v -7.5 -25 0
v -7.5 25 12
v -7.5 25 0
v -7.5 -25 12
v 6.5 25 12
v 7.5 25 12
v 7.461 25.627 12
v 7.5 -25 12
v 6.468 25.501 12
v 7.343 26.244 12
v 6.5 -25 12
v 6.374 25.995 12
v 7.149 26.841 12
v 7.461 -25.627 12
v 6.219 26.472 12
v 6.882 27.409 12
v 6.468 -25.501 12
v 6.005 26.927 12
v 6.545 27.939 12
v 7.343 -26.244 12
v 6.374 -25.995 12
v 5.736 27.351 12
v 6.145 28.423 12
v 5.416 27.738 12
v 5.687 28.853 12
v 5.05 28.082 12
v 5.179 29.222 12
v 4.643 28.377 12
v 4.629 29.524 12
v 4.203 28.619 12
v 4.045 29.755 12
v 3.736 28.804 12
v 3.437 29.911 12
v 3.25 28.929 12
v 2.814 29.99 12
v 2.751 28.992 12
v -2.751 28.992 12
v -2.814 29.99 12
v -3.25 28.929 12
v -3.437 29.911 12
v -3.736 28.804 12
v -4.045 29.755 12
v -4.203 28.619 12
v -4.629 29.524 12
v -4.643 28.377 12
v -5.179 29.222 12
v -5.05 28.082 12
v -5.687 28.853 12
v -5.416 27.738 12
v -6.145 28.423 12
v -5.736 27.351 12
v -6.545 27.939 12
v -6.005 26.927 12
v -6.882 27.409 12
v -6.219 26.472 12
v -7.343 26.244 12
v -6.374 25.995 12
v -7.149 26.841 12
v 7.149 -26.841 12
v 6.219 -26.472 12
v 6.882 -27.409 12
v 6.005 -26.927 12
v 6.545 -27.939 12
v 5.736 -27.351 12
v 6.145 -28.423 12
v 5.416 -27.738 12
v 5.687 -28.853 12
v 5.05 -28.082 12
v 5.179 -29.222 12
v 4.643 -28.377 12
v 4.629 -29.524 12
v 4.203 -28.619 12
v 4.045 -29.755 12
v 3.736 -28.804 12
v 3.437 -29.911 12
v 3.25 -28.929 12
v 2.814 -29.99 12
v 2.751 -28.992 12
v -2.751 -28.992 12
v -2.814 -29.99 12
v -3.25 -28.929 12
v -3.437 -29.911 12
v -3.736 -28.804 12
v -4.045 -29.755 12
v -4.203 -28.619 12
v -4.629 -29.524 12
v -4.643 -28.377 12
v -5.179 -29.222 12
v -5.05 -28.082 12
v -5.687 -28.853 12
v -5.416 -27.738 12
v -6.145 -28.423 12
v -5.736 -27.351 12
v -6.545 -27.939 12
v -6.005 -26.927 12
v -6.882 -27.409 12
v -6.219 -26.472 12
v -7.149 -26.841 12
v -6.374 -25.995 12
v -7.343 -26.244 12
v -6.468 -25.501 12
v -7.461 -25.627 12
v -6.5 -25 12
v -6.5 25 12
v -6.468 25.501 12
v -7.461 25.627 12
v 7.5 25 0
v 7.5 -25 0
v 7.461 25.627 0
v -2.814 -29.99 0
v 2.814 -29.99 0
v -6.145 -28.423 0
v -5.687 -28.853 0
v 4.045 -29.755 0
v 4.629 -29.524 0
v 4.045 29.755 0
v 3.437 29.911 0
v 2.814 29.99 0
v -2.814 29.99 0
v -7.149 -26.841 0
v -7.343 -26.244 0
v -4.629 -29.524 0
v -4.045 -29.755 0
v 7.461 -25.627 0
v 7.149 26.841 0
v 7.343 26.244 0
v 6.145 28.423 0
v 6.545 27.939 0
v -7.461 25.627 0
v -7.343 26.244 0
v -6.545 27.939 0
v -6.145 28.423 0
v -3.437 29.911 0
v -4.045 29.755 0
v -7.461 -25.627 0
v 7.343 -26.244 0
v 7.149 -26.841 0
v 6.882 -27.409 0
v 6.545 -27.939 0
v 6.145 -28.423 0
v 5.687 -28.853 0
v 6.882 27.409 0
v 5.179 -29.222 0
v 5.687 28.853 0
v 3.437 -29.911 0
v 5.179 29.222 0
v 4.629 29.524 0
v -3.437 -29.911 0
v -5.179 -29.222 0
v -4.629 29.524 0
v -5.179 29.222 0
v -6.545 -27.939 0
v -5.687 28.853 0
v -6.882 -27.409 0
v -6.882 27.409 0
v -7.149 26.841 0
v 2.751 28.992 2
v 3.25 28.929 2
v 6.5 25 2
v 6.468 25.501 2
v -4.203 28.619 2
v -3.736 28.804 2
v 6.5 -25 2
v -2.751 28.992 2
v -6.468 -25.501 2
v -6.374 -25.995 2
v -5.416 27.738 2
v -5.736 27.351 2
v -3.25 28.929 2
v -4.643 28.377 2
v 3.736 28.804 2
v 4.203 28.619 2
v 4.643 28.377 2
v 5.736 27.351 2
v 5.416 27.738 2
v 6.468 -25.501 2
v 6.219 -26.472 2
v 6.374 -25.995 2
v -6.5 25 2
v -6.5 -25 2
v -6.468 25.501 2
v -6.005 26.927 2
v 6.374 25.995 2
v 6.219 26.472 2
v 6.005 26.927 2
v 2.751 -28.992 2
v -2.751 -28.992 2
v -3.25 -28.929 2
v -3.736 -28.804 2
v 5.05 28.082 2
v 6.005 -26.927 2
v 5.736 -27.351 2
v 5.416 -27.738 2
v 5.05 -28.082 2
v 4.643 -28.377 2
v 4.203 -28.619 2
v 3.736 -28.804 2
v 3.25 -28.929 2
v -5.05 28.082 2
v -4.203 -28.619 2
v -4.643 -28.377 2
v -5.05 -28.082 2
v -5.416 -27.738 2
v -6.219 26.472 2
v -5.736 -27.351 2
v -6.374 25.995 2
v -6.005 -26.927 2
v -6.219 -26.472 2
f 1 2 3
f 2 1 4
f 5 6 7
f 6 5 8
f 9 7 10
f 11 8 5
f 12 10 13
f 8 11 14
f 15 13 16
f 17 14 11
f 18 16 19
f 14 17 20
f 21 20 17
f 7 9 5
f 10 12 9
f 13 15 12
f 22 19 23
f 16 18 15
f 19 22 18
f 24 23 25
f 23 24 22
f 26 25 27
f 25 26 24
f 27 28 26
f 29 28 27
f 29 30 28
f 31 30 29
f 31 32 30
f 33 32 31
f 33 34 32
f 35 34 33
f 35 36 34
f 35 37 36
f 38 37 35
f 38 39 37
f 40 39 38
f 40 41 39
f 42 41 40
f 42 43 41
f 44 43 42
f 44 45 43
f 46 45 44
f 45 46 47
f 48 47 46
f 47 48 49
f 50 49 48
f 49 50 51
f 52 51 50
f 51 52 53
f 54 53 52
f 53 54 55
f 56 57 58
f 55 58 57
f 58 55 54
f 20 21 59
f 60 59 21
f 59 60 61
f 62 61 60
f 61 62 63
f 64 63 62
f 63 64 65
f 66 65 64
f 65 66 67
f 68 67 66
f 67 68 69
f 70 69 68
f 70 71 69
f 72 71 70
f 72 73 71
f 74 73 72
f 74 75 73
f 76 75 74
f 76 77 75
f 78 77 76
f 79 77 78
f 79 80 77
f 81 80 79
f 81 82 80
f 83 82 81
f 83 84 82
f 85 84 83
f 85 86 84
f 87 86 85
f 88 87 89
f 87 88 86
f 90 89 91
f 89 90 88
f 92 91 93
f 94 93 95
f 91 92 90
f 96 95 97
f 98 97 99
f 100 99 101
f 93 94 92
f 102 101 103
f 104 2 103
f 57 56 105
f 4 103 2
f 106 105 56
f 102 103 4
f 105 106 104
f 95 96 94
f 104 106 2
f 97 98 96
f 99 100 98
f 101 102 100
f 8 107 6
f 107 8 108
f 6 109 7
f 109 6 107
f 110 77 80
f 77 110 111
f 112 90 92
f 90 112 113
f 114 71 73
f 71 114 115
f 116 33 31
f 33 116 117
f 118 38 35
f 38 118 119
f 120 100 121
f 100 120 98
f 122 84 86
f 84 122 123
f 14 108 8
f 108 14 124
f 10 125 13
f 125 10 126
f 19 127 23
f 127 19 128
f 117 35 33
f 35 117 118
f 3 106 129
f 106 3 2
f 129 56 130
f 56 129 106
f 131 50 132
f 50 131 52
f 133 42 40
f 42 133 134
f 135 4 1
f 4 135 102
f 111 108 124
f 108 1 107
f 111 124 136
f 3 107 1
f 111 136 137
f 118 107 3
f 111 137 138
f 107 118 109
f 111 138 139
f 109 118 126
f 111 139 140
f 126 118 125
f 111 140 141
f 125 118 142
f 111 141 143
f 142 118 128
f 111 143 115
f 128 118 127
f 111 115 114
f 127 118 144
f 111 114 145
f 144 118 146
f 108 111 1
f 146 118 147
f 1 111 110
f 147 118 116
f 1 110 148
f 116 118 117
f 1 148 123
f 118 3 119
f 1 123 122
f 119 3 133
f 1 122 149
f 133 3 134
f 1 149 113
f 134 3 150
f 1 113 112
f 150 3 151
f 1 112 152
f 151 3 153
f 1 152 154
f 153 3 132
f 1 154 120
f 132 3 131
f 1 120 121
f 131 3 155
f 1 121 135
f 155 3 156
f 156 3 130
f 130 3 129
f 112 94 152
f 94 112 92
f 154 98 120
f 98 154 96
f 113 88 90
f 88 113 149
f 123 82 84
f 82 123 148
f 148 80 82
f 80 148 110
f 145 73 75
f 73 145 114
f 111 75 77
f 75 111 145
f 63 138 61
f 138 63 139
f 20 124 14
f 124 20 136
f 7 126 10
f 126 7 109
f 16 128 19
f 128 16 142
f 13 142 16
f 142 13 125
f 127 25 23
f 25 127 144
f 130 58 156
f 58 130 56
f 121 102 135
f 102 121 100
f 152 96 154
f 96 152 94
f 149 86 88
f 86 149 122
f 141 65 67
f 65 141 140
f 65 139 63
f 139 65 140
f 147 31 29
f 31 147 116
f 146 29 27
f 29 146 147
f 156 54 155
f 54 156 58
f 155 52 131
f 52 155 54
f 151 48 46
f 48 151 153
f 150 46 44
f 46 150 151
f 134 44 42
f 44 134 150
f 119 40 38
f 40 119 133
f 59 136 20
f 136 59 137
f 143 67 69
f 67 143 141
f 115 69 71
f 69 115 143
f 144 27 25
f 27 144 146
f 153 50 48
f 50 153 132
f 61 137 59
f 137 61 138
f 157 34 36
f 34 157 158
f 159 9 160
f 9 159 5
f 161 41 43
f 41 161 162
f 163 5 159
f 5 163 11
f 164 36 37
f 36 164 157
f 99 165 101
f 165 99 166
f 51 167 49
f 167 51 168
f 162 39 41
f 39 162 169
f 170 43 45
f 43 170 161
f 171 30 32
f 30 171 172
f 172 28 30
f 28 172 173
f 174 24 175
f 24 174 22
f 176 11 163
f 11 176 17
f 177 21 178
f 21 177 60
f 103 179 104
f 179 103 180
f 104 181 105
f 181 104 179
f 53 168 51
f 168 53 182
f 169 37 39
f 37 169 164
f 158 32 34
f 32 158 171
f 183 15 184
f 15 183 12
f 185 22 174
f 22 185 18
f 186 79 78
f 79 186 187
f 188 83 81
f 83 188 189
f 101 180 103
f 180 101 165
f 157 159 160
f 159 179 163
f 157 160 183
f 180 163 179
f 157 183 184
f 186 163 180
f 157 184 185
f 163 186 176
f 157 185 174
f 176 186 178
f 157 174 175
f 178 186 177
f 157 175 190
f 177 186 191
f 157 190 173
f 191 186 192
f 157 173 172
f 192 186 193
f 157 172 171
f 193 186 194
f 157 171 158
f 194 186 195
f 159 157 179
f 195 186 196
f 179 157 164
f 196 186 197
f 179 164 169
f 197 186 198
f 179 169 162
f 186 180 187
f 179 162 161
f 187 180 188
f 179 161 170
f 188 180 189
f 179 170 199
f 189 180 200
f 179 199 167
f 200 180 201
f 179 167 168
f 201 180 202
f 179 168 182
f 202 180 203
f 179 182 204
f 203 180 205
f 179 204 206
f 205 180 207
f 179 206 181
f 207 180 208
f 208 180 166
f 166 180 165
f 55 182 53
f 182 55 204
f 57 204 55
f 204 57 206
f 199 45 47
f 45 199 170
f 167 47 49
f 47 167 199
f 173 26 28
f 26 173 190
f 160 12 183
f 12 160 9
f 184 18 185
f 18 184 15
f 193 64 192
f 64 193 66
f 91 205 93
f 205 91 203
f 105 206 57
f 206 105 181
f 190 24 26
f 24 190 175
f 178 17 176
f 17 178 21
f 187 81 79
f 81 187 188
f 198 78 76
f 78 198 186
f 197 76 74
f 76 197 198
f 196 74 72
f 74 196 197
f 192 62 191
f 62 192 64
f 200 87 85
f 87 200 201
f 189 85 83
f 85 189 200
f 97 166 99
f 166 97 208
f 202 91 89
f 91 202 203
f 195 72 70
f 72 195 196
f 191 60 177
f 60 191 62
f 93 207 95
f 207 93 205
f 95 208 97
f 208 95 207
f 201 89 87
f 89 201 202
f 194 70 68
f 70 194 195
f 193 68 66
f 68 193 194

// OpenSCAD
$fn = 50;


difference() {
	union() {
		hull() {
			translate(v = [-2.5000000000, 25.0000000000, 0]) {
				cylinder(h = 12, r = 5);
			}
			translate(v = [2.5000000000, 25.0000000000, 0]) {
				cylinder(h = 12, r = 5);
			}
			translate(v = [-2.5000000000, -25.0000000000, 0]) {
				cylinder(h = 12, r = 5);
			}
			translate(v = [2.5000000000, -25.0000000000, 0]) {
				cylinder(h = 12, r = 5);
			}
		}
	}
	union() {
		translate(v = [0, 0, 2]) {
			#hull() {
				translate(v = [-2.5000000000, 25.0000000000, 0]) {
					cylinder(h = 10, r = 4);
				}
				translate(v = [2.5000000000, 25.0000000000, 0]) {
					cylinder(h = 10, r = 4);
				}
				translate(v = [-2.5000000000, -25.0000000000, 0]) {
					cylinder(h = 10, r = 4);
				}
				translate(v = [2.5000000000, -25.0000000000, 0]) {
					cylinder(h = 10, r = 4);
				}
			}
		}
	}
}
